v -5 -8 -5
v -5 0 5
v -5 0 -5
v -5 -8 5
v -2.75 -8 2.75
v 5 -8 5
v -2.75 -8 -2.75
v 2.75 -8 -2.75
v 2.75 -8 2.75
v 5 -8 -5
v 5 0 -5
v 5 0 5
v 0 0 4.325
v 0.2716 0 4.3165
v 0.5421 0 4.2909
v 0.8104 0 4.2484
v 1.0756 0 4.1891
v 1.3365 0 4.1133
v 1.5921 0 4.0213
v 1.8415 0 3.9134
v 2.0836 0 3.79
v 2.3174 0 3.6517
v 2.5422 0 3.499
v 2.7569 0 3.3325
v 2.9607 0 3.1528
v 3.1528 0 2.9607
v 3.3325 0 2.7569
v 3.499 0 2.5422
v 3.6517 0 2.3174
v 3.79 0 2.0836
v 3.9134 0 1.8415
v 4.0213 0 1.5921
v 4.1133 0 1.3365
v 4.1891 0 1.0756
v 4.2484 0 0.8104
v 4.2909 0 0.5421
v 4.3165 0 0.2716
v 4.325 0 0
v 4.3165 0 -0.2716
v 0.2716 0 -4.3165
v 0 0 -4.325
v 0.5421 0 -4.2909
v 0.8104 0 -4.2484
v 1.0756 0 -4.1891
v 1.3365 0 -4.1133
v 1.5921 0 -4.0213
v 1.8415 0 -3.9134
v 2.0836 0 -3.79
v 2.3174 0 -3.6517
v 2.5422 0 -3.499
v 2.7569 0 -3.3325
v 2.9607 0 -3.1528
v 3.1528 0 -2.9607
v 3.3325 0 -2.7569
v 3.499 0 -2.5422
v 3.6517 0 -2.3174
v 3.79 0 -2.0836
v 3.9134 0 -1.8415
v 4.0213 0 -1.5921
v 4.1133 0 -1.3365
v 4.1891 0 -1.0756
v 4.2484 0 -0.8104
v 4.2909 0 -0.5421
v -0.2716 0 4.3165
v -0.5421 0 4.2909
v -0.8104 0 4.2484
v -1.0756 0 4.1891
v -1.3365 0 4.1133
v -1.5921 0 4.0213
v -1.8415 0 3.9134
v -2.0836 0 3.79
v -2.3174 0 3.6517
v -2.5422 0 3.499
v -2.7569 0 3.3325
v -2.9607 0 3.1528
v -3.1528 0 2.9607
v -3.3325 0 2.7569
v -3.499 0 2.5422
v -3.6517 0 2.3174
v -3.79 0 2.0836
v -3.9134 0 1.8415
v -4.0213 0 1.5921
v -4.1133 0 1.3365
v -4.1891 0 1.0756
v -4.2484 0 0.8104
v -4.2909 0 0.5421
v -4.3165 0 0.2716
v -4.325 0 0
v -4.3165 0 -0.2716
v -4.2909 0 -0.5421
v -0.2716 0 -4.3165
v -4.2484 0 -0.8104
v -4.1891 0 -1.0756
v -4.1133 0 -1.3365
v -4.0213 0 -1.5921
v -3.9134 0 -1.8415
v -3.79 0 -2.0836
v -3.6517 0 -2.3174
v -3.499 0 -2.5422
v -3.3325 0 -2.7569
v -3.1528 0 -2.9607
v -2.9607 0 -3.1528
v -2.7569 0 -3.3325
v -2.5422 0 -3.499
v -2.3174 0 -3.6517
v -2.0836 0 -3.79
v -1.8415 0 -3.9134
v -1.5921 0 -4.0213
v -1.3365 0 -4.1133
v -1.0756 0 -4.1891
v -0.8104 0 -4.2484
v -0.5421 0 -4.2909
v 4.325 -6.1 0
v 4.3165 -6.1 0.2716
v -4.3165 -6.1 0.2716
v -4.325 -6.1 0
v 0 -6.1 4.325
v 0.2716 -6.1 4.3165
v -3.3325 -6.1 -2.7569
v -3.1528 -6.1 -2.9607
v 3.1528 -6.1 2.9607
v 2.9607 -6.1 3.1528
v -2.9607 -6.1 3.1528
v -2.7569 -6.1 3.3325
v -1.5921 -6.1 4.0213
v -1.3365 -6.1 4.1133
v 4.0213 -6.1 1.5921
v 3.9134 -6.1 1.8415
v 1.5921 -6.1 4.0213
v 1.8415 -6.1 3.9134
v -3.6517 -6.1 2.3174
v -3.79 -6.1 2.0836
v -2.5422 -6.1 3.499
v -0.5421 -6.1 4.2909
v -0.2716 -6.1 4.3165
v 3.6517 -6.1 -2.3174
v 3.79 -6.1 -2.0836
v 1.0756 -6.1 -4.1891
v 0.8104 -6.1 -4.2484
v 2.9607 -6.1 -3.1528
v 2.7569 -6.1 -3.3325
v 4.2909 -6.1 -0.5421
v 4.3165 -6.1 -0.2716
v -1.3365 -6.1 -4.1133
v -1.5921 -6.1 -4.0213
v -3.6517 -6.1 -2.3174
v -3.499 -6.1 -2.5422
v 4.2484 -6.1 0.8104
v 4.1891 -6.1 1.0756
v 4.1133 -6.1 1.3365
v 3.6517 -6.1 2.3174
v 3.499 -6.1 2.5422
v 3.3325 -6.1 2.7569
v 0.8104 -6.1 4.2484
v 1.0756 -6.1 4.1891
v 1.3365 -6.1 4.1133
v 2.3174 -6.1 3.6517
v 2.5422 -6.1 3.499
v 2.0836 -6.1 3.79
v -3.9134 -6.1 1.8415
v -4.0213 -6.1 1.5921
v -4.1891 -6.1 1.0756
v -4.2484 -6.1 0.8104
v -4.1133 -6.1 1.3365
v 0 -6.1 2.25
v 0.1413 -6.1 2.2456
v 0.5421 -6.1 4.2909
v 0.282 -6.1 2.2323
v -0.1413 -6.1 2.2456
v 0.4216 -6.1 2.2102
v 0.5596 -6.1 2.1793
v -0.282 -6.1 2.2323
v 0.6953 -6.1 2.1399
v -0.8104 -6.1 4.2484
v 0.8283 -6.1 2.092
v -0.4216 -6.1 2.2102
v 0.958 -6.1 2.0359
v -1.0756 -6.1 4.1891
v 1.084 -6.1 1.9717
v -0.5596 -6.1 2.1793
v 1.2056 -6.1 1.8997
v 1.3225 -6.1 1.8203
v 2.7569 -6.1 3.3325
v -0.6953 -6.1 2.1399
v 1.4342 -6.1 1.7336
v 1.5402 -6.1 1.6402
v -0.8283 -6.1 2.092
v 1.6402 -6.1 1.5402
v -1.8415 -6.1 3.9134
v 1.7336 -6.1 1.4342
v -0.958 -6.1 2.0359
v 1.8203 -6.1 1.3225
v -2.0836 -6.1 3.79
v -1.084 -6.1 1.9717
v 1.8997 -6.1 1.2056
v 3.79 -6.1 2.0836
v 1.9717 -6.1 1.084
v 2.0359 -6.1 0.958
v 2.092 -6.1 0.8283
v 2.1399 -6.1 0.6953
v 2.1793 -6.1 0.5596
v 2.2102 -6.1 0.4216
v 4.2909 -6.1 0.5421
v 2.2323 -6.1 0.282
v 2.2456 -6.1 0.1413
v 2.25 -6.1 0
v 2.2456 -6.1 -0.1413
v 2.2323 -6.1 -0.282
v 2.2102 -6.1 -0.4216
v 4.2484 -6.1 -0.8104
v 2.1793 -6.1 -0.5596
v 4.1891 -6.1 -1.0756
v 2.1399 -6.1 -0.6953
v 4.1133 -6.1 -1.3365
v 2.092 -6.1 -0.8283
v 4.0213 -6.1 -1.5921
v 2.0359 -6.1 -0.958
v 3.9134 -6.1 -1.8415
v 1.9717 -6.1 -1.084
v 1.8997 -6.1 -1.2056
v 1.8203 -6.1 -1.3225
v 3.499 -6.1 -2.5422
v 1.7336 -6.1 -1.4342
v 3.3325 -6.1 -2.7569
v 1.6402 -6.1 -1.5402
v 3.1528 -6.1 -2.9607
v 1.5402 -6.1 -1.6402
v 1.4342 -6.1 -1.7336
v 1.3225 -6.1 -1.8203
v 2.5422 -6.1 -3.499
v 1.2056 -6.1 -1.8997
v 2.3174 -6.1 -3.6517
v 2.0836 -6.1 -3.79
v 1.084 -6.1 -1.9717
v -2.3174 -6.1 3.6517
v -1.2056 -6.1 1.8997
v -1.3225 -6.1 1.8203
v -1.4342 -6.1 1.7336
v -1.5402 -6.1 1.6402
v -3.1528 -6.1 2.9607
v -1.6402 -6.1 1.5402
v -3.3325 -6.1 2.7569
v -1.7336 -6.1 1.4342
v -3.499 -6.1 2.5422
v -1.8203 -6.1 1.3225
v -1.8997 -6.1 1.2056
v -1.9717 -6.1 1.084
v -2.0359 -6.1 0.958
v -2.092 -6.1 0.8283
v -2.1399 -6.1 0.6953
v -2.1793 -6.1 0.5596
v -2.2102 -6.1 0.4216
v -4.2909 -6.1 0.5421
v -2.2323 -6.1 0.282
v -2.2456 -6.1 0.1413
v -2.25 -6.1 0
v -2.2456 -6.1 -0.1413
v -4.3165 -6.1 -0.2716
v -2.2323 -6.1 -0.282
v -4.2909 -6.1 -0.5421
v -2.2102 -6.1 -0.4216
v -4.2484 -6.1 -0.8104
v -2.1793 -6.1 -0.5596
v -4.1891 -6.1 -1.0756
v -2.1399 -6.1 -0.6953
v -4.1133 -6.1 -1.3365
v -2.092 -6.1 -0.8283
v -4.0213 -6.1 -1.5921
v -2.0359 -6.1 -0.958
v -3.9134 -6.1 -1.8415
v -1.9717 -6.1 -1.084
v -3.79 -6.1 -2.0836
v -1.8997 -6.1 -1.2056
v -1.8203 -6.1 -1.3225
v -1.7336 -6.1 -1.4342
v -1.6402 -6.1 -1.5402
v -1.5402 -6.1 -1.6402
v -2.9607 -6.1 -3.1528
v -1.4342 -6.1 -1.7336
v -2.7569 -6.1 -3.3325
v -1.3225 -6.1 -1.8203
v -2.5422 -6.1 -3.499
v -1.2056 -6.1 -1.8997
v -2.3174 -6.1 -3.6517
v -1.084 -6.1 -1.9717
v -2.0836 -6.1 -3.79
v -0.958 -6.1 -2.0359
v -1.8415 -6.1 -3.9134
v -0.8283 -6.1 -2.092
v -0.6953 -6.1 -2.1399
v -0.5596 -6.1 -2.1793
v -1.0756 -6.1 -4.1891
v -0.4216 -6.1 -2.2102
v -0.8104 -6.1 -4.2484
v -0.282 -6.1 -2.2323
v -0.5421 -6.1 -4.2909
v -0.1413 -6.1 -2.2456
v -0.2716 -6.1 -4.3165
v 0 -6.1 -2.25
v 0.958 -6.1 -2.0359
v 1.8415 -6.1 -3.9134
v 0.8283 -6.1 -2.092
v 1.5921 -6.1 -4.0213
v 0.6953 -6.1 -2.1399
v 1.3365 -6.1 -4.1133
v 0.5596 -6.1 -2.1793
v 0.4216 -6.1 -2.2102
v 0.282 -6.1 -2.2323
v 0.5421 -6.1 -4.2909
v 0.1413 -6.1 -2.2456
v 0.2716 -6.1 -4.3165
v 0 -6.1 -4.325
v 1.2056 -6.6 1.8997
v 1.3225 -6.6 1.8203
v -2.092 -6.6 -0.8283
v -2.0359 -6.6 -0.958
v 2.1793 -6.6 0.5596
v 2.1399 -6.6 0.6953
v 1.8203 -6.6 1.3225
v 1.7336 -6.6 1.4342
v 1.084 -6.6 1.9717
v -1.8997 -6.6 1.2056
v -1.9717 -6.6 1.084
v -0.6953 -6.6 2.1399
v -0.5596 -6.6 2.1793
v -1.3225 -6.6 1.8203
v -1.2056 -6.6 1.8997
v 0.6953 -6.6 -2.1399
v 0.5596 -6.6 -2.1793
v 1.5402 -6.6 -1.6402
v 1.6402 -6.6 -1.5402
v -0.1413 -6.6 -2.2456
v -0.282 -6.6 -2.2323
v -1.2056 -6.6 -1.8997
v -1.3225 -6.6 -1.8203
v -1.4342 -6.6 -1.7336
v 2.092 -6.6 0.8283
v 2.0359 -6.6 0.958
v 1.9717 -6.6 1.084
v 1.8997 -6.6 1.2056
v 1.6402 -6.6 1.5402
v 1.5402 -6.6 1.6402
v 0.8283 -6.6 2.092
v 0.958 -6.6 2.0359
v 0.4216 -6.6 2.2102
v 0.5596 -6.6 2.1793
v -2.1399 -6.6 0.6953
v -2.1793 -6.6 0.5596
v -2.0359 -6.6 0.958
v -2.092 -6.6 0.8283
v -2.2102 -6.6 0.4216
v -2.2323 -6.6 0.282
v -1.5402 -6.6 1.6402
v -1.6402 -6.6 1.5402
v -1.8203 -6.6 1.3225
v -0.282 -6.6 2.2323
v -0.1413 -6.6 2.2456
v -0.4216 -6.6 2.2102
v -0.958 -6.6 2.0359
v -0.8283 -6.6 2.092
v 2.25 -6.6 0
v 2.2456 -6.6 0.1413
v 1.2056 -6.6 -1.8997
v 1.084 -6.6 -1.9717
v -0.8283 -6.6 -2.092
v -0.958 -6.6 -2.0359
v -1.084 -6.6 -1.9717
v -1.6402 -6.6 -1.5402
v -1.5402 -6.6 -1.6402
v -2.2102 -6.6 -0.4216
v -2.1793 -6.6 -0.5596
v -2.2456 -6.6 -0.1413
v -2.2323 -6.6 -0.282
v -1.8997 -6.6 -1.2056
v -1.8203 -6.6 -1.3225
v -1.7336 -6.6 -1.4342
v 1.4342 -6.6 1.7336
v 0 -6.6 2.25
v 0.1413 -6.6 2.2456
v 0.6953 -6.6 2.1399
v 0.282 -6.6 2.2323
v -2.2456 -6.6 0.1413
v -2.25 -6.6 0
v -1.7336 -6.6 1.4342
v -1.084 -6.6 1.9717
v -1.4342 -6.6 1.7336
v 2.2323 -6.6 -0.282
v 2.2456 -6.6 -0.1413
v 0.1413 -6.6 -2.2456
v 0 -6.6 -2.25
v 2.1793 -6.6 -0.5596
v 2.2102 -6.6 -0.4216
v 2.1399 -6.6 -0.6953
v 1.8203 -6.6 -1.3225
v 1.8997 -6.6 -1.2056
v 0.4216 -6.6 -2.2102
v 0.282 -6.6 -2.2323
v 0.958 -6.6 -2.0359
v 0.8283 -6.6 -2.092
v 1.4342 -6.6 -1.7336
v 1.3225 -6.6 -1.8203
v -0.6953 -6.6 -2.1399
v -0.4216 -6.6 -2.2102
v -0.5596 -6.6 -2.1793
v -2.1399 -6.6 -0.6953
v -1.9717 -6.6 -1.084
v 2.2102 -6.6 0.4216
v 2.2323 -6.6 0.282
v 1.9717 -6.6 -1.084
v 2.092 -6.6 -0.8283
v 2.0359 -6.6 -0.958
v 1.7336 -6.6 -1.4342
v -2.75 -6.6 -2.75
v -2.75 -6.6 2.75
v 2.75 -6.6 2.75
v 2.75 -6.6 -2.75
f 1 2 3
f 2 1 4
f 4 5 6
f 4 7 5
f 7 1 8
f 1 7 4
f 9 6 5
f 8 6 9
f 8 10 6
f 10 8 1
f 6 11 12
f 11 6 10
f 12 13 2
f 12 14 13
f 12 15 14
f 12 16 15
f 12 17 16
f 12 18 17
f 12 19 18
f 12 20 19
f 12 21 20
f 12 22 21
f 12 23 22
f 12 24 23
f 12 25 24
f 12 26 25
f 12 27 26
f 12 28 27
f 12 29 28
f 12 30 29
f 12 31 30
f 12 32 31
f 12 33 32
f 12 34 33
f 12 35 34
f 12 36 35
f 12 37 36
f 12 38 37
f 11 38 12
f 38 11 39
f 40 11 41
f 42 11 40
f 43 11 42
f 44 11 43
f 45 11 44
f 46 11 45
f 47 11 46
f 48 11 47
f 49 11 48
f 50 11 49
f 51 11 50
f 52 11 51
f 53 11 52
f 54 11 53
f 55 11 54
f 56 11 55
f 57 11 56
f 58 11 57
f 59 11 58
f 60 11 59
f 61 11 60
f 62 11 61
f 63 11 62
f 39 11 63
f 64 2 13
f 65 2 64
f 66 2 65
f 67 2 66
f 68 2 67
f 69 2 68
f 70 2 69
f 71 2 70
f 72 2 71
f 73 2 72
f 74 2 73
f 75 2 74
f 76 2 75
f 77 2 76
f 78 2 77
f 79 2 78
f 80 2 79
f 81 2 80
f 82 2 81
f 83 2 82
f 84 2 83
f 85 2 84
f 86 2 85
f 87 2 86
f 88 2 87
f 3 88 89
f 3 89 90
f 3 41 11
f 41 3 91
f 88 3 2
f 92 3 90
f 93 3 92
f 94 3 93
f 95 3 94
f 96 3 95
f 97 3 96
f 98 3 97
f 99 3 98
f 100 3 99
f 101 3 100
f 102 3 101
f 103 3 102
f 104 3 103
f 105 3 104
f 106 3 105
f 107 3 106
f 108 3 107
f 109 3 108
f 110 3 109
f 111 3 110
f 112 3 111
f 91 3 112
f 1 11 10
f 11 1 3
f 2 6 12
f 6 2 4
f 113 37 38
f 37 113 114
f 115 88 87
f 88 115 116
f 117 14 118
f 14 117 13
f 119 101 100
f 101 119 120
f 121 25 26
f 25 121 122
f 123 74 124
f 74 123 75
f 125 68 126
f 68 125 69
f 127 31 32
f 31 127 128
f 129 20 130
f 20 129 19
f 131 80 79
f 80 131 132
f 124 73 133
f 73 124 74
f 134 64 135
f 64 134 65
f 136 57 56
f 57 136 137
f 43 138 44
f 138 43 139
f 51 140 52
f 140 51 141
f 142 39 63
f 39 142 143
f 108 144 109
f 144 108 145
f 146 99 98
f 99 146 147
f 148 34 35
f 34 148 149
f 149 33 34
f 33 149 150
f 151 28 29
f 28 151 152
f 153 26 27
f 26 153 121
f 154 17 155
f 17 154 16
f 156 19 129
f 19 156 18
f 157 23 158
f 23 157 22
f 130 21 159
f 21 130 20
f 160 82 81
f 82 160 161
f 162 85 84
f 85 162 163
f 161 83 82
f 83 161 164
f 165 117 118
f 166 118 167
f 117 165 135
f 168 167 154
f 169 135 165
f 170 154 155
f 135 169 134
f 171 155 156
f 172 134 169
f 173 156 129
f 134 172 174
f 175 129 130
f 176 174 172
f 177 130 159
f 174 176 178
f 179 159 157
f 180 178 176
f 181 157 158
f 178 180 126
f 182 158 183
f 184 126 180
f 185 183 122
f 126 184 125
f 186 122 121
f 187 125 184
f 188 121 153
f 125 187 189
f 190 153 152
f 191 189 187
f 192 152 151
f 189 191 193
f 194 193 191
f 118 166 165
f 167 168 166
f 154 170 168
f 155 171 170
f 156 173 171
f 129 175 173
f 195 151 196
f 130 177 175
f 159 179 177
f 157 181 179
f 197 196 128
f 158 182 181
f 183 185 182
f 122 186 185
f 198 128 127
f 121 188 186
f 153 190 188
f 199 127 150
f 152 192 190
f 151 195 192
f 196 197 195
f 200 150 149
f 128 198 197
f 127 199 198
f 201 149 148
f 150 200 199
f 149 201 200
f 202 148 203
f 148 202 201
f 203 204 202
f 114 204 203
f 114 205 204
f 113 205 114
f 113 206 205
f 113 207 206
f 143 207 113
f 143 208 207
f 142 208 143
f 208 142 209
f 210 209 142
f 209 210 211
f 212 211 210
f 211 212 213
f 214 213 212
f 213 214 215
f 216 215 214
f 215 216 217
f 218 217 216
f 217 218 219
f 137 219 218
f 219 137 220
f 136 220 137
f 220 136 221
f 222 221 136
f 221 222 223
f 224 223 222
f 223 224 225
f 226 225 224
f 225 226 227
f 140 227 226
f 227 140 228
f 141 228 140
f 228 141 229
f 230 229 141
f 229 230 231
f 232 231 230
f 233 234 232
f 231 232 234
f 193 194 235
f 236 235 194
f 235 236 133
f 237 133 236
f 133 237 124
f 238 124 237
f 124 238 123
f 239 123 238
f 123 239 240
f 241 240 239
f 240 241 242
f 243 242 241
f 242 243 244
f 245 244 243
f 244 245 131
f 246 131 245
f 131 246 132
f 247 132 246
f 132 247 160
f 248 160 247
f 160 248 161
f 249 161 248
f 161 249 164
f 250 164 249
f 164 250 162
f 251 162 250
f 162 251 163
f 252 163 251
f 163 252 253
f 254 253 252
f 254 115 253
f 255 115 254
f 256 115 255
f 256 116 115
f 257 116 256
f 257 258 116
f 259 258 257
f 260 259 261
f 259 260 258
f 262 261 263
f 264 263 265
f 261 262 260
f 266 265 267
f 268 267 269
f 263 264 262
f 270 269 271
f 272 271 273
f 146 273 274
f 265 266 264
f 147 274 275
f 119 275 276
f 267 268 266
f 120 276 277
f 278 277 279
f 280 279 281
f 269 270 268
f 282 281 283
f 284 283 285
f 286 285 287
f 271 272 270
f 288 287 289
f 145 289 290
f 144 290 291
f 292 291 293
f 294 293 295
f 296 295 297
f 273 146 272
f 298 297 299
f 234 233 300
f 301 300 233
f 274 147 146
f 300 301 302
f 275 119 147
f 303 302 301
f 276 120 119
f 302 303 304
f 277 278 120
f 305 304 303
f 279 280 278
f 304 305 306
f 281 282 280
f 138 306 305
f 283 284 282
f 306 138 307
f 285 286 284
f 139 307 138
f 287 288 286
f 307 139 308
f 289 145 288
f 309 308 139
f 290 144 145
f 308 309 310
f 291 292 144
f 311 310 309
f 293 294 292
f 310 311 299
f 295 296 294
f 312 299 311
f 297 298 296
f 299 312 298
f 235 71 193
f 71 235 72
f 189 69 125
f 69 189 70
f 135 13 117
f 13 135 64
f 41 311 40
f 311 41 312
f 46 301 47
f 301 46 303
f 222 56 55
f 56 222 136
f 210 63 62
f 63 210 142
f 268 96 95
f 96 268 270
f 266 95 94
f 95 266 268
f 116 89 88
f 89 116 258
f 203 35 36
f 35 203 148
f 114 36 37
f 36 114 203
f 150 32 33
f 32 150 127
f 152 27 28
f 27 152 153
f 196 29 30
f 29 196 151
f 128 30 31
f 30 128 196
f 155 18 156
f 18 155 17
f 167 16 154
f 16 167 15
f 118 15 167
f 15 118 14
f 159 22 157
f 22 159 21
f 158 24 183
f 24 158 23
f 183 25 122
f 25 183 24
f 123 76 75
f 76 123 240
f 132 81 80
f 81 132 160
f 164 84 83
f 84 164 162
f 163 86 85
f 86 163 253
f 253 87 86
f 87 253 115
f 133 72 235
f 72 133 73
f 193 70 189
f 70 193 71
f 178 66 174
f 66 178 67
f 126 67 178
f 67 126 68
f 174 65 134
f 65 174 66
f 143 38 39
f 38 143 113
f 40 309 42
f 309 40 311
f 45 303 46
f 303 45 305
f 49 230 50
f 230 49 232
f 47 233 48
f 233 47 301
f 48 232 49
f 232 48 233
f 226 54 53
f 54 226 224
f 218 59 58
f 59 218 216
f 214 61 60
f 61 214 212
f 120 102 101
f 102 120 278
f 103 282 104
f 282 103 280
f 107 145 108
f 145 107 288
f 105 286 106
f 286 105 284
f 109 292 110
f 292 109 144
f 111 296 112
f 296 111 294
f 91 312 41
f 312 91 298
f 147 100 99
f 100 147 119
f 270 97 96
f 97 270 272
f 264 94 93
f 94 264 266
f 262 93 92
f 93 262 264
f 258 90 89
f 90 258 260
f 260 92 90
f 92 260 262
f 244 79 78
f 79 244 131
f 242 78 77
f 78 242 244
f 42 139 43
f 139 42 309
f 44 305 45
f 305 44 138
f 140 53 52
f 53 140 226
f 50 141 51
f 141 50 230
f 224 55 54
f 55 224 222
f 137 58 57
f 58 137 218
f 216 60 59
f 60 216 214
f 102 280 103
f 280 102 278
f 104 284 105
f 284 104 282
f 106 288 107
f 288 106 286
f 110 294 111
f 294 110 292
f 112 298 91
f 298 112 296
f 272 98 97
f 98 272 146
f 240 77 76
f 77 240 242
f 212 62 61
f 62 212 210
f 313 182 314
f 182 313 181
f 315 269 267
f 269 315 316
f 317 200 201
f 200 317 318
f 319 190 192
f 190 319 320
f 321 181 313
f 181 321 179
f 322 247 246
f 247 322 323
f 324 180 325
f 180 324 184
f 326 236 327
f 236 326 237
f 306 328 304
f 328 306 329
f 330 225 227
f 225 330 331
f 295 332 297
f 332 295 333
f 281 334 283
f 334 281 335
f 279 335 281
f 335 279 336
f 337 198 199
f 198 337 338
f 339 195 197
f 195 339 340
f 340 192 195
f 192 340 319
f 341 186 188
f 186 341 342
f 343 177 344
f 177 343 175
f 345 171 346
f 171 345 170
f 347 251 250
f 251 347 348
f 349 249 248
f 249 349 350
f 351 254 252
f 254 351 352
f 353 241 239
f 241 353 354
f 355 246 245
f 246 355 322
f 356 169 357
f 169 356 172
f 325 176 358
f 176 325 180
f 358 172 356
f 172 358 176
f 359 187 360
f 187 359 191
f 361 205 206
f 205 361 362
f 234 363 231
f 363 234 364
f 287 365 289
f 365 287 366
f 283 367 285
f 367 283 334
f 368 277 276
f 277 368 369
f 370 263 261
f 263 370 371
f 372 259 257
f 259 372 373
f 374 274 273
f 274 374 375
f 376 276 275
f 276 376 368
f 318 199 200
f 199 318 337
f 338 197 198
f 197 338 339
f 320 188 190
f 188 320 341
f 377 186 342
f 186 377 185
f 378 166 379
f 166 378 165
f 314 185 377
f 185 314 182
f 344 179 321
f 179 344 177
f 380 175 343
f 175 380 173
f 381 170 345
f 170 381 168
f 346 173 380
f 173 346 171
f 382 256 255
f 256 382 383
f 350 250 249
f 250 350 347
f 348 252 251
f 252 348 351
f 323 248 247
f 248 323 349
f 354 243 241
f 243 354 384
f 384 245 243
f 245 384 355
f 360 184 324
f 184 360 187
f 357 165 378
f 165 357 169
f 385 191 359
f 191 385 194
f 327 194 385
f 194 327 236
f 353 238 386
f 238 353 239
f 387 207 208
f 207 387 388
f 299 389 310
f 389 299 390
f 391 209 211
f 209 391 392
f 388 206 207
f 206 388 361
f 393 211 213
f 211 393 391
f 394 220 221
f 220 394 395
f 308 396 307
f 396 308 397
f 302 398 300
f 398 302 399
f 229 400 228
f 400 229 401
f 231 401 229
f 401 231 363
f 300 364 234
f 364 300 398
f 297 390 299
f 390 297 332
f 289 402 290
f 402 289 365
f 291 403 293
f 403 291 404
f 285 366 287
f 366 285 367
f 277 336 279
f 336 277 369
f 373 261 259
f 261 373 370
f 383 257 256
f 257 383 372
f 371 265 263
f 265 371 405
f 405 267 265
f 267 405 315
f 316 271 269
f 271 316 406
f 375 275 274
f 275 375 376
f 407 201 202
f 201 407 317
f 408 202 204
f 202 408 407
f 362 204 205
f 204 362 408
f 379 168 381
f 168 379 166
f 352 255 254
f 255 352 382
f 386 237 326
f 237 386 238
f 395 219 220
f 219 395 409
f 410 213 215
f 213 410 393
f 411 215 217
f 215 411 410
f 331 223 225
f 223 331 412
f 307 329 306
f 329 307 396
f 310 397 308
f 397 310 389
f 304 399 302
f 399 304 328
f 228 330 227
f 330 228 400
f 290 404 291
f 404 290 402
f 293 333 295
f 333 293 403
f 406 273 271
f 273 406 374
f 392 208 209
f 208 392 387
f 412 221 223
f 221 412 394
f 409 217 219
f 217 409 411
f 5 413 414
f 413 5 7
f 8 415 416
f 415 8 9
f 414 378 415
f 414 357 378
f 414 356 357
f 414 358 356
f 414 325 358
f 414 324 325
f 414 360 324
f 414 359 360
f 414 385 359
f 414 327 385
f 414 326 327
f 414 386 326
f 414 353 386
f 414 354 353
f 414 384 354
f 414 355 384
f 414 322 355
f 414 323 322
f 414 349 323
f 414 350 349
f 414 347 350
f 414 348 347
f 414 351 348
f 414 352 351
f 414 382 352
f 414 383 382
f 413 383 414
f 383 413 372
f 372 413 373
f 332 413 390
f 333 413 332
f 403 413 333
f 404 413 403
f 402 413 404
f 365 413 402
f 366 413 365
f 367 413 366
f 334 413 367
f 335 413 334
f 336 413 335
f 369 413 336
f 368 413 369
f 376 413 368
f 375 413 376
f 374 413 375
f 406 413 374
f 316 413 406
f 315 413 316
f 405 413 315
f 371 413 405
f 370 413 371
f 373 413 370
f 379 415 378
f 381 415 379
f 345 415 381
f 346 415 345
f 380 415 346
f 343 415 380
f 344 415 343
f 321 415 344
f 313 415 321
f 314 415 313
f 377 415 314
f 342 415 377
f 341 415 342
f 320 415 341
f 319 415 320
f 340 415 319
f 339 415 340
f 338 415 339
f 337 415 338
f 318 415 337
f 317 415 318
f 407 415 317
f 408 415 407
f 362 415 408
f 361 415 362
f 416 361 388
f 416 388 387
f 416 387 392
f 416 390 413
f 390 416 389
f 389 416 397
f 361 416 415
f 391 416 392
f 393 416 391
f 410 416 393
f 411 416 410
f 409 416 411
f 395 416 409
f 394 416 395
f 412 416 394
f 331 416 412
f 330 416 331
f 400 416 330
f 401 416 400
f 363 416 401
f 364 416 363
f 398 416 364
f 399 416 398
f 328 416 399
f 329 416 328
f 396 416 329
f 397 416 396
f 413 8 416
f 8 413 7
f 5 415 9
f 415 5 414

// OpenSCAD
module sensor_filter_bracket(module_height = 5,
                             total_height = 8,
                             outer_radius = 5,
                             inner_radius = 2,
                             filter_height = 0.1,
                             filter_width = 5,
                             viewport_width = 3.5) {

    difference() {
        // This is the main cylinder
        //cylinder(h=total_height, r=outer_radius, center=false, $fn=100);
        translate([-outer_radius, -outer_radius, 0]) {
            cube([outer_radius*2, outer_radius*2, total_height]);
        }
        
        // Remove a cutout for the sensor module
        translate([0, 0, -0.01]) {
            cylinder(h=module_height + 0.01, r=inner_radius, center=false, $fn=100);
        };
        
        translate([0, 0, module_height-0.01]) {
            cylinder(h=total_height - module_height + 0.02, r=viewport_width, center=false, $fn=100);
        }
        
        // Remove a cut out for the filter
        //translate([-filter_width/2, (-viewport_width-0.1), module_height+0.1]) {
        //    cube([filter_width, outer_radius*2, filter_height]);
        //};
        
        // Remove a wider cutout from the top for imaging
        //translate([0, 0, module_height - 0.01]) {
        //    cylinder(h=(total_height - module_height + 0.02), r=viewport_width, center=false, $fn=100);
            //cylinder(h=(total_height - module_height - 0.48), r1=(2), r2=(outer_radius - 1), center=false, $fn=100);
        //};
        
        translate([-(filter_width+0.5)/2, -(filter_width+0.5)/2, module_height + 0.5]) {
            cube([filter_width+0.5, filter_width+0.5, total_height-module_height+0.05]);
        }
        
        // Remove a wider cutout from the side for filter insertion and removal
        //translate([-outer_radius, (inner_radius+0.25), (module_height-1)]) {
        //    cube([outer_radius*2, outer_radius, (total_height - module_height + 1.1)]);
        //}
    }   
}

rotate([90, 0, 0]) {

sensor_filter_bracket(module_height = 6.1,
                                            total_height = 8,
                                            outer_radius = 5,
                                            inner_radius = 8.65/2,
                                            filter_height = 0.65,
                                            filter_width = 5,
                                            viewport_width = 2.25);
}
